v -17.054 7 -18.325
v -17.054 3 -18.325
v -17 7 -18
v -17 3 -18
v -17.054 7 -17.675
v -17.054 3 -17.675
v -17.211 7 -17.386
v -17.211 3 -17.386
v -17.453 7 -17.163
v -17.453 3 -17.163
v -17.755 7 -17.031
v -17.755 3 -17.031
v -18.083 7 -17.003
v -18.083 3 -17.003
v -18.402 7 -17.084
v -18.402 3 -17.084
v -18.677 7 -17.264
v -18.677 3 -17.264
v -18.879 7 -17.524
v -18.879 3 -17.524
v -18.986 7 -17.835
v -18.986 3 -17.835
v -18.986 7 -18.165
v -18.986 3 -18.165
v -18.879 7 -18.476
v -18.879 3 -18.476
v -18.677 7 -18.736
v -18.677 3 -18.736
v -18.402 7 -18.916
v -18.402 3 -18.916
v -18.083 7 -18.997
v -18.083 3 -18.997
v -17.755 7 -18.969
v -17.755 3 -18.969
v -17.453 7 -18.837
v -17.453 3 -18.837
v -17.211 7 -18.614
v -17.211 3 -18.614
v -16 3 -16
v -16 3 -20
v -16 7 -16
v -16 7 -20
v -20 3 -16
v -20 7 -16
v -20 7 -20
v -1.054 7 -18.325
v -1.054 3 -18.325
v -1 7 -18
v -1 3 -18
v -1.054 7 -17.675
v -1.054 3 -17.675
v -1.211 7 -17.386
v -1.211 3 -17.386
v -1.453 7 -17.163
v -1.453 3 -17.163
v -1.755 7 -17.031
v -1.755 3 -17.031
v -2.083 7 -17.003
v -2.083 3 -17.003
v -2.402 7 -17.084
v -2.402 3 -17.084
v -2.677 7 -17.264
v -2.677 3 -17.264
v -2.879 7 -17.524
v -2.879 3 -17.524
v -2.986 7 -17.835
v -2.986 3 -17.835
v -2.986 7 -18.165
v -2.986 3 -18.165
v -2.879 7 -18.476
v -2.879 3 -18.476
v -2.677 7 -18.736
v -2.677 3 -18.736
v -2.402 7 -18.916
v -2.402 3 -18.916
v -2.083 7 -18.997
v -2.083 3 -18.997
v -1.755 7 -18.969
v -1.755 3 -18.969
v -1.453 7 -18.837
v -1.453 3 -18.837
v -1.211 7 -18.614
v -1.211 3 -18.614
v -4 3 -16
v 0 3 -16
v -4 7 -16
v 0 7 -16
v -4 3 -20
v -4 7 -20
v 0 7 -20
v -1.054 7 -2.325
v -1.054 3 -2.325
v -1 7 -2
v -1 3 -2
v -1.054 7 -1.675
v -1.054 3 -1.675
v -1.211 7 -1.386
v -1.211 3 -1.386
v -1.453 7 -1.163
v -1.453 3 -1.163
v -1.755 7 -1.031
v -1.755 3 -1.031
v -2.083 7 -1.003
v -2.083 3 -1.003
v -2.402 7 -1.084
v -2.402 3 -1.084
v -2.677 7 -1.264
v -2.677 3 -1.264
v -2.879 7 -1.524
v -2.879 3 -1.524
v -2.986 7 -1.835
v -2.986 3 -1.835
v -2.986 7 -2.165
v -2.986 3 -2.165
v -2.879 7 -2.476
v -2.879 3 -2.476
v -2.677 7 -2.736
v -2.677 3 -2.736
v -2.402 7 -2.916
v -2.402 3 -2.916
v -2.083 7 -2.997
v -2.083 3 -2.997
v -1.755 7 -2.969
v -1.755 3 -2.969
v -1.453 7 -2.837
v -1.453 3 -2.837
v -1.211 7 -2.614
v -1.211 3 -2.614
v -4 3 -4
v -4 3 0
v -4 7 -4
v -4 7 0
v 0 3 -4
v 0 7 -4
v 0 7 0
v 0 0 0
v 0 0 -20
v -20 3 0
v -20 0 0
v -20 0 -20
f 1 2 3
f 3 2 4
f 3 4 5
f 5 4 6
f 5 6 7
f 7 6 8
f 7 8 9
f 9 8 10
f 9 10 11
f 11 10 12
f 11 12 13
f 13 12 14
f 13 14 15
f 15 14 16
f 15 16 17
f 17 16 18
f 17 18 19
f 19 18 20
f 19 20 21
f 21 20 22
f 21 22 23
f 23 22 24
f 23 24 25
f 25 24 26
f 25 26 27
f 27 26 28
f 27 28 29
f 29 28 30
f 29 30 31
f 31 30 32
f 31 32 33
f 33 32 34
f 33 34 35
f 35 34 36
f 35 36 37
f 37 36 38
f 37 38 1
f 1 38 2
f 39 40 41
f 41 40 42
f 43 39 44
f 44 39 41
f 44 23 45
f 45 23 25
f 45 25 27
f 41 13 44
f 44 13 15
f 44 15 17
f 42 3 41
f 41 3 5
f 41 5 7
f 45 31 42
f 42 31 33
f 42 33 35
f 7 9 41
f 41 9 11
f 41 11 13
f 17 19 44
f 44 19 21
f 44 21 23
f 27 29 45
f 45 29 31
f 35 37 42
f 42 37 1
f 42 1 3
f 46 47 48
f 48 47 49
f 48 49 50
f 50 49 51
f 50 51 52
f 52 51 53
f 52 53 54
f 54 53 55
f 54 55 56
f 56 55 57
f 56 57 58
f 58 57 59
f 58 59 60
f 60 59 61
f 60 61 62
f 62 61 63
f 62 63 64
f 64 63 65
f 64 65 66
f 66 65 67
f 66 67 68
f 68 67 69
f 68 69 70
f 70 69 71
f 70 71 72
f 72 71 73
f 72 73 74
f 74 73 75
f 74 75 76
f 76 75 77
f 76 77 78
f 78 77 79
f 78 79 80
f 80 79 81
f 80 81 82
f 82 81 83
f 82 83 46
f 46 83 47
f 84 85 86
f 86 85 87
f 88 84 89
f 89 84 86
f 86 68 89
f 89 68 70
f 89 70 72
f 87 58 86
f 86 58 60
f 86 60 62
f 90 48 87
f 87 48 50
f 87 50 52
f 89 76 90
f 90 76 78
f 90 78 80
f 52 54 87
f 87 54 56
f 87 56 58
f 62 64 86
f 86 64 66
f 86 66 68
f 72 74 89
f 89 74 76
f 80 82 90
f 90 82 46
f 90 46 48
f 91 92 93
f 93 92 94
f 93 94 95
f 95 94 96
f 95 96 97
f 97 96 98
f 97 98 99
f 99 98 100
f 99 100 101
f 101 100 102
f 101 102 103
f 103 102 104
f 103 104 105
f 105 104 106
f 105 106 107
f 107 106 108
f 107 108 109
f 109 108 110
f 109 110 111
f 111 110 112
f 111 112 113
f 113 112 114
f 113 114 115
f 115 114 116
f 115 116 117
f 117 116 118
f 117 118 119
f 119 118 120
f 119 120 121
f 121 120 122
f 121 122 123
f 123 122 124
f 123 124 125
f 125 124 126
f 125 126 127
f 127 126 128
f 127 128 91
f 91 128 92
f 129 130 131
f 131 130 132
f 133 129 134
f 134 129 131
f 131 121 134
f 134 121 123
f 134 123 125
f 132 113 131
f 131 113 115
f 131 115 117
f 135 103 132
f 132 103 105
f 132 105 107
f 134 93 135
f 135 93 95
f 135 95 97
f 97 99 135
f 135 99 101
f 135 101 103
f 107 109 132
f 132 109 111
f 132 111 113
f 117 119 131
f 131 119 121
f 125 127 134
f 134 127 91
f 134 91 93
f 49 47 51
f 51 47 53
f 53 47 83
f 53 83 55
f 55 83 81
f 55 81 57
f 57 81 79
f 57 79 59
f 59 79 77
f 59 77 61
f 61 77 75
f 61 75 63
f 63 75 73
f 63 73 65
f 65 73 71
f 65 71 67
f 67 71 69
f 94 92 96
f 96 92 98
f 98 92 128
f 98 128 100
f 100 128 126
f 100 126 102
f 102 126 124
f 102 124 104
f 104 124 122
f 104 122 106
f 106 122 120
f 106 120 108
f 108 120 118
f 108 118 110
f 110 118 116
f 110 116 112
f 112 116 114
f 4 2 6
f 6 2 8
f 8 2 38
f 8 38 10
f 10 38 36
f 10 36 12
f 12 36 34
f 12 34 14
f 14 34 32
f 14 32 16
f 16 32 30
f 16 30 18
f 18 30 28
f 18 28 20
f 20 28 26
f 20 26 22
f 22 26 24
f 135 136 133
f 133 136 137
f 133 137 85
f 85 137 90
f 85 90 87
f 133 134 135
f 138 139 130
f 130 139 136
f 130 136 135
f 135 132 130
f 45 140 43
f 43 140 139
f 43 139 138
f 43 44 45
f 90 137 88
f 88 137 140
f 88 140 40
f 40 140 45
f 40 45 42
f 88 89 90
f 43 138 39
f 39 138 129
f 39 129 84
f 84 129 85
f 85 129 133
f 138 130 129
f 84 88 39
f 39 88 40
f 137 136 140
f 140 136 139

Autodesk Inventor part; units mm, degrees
ref_plane "YZ Plane" through (0, 0, 0) normal (1, 0, 0) x (0, 1, 0)
ref_plane "XZ Plane" through (0, 0, 0) normal (0, 1, 0) x (-1, 0, 0)
ref_plane "XY Plane" through (0, 0, 0) normal (0, 0, 1) x (1, 0, 0)
sketch "Sketch1" plane through (0, 0, 0) normal (0, 1, 0) x (-1, 0, 0)
  line L0 (0, 0) -> (20, 0)
  line L1 (20, 0) -> (20, -20)
  line L2 (20, -20) -> (0, -20)
  line L3 (0, -20) -> (0, 0)
  dimension "d0" = 20
  dimension "d1" = 20
extrude "Extrusion1" add sketch "Sketch1" along normal blind 3
sketch "Sketch2" plane through (0, 3, 0) normal (0, 1, 0) x (1, 0, 0)
  line L0 (0, 0) -> (-4, 0)
  line L1 (-4, 0) -> (-4, 4)
  line L2 (-4, 4) -> (0, 4)
  line L3 (0, 4) -> (0, 0)
  line L4 (0, 0) -> (-2, 0)
  line L5 (-2, 0) -> (-2, 2)
  line L6 (-2, 2) -> (0, 2)
  line L7 (0, 2) -> (0, 0)
  line L8 (0, 20) -> (-20, 20) projected
  line L9 (0, 20) -> (-4, 20)
  line L10 (-4, 20) -> (-4, 16)
  line L11 (-4, 16) -> (0, 16)
  line L12 (0, 16) -> (0, 20)
  line L13 (0, 20) -> (-2, 20)
  line L14 (-2, 20) -> (-2, 18)
  line L15 (-2, 18) -> (0, 18)
  line L16 (0, 18) -> (0, 20)
  line L17 (-20, 20) -> (-20, 0) projected
  line L18 (-20, 20) -> (-16, 20)
  line L19 (-16, 20) -> (-16, 16)
  line L20 (-16, 16) -> (-20, 16)
  line L21 (-20, 16) -> (-20, 20)
  line L22 (-20, 20) -> (-18, 20)
  line L23 (-18, 20) -> (-18, 18)
  line L24 (-18, 18) -> (-20, 18)
  line L25 (-20, 18) -> (-20, 20)
  line L26 (-20, 0) -> (-16, 0)
  line L27 (-16, 0) -> (-16, 4)
  line L28 (-16, 4) -> (-20, 4)
  line L29 (-20, 4) -> (-20, 0)
  line L30 (-20, 0) -> (-18, 0)
  line L31 (-18, 0) -> (-18, 2)
  line L32 (-18, 2) -> (-20, 2)
  line L33 (-20, 2) -> (-20, 0)
  circle A0 centre (-18, 2) radius 1
  circle A1 centre (-18, 18) radius 1
  circle A2 centre (-2, 2) radius 1
  circle A3 centre (-2, 18) radius 1
  dimension "d4" = 4
  dimension "d5" = 4
  dimension "d6" = 2
  dimension "d7" = 2
  dimension "d8" = 4
  dimension "d9" = 4
  dimension "d10" = 2
  dimension "d11" = 2
  dimension "d12" = 4
  dimension "d13" = 4
  dimension "d14" = 2
  dimension "d15" = 2
  dimension "d16" = 4
  dimension "d17" = 4
  dimension "d18" = 2
  dimension "d19" = 2
  dimension "d20" = 2
  dimension "d21" = 2
  dimension "d22" = 2
  dimension "d23" = 2
extrude "Extrusion2" add sketch "Sketch2" along normal blind 4 contours L0 L5 A2 L6 L3 | L0 L1 L2 L3 L6 A2 L5 | L12 L15 A3 L14 L8 | L19 L20 L17 L24 A1 L23 L8 | L14 A3 L15 L12 L11 L10 L8 | L23 A1 L24 L17 L8
properties part number "underplate_support_1"
